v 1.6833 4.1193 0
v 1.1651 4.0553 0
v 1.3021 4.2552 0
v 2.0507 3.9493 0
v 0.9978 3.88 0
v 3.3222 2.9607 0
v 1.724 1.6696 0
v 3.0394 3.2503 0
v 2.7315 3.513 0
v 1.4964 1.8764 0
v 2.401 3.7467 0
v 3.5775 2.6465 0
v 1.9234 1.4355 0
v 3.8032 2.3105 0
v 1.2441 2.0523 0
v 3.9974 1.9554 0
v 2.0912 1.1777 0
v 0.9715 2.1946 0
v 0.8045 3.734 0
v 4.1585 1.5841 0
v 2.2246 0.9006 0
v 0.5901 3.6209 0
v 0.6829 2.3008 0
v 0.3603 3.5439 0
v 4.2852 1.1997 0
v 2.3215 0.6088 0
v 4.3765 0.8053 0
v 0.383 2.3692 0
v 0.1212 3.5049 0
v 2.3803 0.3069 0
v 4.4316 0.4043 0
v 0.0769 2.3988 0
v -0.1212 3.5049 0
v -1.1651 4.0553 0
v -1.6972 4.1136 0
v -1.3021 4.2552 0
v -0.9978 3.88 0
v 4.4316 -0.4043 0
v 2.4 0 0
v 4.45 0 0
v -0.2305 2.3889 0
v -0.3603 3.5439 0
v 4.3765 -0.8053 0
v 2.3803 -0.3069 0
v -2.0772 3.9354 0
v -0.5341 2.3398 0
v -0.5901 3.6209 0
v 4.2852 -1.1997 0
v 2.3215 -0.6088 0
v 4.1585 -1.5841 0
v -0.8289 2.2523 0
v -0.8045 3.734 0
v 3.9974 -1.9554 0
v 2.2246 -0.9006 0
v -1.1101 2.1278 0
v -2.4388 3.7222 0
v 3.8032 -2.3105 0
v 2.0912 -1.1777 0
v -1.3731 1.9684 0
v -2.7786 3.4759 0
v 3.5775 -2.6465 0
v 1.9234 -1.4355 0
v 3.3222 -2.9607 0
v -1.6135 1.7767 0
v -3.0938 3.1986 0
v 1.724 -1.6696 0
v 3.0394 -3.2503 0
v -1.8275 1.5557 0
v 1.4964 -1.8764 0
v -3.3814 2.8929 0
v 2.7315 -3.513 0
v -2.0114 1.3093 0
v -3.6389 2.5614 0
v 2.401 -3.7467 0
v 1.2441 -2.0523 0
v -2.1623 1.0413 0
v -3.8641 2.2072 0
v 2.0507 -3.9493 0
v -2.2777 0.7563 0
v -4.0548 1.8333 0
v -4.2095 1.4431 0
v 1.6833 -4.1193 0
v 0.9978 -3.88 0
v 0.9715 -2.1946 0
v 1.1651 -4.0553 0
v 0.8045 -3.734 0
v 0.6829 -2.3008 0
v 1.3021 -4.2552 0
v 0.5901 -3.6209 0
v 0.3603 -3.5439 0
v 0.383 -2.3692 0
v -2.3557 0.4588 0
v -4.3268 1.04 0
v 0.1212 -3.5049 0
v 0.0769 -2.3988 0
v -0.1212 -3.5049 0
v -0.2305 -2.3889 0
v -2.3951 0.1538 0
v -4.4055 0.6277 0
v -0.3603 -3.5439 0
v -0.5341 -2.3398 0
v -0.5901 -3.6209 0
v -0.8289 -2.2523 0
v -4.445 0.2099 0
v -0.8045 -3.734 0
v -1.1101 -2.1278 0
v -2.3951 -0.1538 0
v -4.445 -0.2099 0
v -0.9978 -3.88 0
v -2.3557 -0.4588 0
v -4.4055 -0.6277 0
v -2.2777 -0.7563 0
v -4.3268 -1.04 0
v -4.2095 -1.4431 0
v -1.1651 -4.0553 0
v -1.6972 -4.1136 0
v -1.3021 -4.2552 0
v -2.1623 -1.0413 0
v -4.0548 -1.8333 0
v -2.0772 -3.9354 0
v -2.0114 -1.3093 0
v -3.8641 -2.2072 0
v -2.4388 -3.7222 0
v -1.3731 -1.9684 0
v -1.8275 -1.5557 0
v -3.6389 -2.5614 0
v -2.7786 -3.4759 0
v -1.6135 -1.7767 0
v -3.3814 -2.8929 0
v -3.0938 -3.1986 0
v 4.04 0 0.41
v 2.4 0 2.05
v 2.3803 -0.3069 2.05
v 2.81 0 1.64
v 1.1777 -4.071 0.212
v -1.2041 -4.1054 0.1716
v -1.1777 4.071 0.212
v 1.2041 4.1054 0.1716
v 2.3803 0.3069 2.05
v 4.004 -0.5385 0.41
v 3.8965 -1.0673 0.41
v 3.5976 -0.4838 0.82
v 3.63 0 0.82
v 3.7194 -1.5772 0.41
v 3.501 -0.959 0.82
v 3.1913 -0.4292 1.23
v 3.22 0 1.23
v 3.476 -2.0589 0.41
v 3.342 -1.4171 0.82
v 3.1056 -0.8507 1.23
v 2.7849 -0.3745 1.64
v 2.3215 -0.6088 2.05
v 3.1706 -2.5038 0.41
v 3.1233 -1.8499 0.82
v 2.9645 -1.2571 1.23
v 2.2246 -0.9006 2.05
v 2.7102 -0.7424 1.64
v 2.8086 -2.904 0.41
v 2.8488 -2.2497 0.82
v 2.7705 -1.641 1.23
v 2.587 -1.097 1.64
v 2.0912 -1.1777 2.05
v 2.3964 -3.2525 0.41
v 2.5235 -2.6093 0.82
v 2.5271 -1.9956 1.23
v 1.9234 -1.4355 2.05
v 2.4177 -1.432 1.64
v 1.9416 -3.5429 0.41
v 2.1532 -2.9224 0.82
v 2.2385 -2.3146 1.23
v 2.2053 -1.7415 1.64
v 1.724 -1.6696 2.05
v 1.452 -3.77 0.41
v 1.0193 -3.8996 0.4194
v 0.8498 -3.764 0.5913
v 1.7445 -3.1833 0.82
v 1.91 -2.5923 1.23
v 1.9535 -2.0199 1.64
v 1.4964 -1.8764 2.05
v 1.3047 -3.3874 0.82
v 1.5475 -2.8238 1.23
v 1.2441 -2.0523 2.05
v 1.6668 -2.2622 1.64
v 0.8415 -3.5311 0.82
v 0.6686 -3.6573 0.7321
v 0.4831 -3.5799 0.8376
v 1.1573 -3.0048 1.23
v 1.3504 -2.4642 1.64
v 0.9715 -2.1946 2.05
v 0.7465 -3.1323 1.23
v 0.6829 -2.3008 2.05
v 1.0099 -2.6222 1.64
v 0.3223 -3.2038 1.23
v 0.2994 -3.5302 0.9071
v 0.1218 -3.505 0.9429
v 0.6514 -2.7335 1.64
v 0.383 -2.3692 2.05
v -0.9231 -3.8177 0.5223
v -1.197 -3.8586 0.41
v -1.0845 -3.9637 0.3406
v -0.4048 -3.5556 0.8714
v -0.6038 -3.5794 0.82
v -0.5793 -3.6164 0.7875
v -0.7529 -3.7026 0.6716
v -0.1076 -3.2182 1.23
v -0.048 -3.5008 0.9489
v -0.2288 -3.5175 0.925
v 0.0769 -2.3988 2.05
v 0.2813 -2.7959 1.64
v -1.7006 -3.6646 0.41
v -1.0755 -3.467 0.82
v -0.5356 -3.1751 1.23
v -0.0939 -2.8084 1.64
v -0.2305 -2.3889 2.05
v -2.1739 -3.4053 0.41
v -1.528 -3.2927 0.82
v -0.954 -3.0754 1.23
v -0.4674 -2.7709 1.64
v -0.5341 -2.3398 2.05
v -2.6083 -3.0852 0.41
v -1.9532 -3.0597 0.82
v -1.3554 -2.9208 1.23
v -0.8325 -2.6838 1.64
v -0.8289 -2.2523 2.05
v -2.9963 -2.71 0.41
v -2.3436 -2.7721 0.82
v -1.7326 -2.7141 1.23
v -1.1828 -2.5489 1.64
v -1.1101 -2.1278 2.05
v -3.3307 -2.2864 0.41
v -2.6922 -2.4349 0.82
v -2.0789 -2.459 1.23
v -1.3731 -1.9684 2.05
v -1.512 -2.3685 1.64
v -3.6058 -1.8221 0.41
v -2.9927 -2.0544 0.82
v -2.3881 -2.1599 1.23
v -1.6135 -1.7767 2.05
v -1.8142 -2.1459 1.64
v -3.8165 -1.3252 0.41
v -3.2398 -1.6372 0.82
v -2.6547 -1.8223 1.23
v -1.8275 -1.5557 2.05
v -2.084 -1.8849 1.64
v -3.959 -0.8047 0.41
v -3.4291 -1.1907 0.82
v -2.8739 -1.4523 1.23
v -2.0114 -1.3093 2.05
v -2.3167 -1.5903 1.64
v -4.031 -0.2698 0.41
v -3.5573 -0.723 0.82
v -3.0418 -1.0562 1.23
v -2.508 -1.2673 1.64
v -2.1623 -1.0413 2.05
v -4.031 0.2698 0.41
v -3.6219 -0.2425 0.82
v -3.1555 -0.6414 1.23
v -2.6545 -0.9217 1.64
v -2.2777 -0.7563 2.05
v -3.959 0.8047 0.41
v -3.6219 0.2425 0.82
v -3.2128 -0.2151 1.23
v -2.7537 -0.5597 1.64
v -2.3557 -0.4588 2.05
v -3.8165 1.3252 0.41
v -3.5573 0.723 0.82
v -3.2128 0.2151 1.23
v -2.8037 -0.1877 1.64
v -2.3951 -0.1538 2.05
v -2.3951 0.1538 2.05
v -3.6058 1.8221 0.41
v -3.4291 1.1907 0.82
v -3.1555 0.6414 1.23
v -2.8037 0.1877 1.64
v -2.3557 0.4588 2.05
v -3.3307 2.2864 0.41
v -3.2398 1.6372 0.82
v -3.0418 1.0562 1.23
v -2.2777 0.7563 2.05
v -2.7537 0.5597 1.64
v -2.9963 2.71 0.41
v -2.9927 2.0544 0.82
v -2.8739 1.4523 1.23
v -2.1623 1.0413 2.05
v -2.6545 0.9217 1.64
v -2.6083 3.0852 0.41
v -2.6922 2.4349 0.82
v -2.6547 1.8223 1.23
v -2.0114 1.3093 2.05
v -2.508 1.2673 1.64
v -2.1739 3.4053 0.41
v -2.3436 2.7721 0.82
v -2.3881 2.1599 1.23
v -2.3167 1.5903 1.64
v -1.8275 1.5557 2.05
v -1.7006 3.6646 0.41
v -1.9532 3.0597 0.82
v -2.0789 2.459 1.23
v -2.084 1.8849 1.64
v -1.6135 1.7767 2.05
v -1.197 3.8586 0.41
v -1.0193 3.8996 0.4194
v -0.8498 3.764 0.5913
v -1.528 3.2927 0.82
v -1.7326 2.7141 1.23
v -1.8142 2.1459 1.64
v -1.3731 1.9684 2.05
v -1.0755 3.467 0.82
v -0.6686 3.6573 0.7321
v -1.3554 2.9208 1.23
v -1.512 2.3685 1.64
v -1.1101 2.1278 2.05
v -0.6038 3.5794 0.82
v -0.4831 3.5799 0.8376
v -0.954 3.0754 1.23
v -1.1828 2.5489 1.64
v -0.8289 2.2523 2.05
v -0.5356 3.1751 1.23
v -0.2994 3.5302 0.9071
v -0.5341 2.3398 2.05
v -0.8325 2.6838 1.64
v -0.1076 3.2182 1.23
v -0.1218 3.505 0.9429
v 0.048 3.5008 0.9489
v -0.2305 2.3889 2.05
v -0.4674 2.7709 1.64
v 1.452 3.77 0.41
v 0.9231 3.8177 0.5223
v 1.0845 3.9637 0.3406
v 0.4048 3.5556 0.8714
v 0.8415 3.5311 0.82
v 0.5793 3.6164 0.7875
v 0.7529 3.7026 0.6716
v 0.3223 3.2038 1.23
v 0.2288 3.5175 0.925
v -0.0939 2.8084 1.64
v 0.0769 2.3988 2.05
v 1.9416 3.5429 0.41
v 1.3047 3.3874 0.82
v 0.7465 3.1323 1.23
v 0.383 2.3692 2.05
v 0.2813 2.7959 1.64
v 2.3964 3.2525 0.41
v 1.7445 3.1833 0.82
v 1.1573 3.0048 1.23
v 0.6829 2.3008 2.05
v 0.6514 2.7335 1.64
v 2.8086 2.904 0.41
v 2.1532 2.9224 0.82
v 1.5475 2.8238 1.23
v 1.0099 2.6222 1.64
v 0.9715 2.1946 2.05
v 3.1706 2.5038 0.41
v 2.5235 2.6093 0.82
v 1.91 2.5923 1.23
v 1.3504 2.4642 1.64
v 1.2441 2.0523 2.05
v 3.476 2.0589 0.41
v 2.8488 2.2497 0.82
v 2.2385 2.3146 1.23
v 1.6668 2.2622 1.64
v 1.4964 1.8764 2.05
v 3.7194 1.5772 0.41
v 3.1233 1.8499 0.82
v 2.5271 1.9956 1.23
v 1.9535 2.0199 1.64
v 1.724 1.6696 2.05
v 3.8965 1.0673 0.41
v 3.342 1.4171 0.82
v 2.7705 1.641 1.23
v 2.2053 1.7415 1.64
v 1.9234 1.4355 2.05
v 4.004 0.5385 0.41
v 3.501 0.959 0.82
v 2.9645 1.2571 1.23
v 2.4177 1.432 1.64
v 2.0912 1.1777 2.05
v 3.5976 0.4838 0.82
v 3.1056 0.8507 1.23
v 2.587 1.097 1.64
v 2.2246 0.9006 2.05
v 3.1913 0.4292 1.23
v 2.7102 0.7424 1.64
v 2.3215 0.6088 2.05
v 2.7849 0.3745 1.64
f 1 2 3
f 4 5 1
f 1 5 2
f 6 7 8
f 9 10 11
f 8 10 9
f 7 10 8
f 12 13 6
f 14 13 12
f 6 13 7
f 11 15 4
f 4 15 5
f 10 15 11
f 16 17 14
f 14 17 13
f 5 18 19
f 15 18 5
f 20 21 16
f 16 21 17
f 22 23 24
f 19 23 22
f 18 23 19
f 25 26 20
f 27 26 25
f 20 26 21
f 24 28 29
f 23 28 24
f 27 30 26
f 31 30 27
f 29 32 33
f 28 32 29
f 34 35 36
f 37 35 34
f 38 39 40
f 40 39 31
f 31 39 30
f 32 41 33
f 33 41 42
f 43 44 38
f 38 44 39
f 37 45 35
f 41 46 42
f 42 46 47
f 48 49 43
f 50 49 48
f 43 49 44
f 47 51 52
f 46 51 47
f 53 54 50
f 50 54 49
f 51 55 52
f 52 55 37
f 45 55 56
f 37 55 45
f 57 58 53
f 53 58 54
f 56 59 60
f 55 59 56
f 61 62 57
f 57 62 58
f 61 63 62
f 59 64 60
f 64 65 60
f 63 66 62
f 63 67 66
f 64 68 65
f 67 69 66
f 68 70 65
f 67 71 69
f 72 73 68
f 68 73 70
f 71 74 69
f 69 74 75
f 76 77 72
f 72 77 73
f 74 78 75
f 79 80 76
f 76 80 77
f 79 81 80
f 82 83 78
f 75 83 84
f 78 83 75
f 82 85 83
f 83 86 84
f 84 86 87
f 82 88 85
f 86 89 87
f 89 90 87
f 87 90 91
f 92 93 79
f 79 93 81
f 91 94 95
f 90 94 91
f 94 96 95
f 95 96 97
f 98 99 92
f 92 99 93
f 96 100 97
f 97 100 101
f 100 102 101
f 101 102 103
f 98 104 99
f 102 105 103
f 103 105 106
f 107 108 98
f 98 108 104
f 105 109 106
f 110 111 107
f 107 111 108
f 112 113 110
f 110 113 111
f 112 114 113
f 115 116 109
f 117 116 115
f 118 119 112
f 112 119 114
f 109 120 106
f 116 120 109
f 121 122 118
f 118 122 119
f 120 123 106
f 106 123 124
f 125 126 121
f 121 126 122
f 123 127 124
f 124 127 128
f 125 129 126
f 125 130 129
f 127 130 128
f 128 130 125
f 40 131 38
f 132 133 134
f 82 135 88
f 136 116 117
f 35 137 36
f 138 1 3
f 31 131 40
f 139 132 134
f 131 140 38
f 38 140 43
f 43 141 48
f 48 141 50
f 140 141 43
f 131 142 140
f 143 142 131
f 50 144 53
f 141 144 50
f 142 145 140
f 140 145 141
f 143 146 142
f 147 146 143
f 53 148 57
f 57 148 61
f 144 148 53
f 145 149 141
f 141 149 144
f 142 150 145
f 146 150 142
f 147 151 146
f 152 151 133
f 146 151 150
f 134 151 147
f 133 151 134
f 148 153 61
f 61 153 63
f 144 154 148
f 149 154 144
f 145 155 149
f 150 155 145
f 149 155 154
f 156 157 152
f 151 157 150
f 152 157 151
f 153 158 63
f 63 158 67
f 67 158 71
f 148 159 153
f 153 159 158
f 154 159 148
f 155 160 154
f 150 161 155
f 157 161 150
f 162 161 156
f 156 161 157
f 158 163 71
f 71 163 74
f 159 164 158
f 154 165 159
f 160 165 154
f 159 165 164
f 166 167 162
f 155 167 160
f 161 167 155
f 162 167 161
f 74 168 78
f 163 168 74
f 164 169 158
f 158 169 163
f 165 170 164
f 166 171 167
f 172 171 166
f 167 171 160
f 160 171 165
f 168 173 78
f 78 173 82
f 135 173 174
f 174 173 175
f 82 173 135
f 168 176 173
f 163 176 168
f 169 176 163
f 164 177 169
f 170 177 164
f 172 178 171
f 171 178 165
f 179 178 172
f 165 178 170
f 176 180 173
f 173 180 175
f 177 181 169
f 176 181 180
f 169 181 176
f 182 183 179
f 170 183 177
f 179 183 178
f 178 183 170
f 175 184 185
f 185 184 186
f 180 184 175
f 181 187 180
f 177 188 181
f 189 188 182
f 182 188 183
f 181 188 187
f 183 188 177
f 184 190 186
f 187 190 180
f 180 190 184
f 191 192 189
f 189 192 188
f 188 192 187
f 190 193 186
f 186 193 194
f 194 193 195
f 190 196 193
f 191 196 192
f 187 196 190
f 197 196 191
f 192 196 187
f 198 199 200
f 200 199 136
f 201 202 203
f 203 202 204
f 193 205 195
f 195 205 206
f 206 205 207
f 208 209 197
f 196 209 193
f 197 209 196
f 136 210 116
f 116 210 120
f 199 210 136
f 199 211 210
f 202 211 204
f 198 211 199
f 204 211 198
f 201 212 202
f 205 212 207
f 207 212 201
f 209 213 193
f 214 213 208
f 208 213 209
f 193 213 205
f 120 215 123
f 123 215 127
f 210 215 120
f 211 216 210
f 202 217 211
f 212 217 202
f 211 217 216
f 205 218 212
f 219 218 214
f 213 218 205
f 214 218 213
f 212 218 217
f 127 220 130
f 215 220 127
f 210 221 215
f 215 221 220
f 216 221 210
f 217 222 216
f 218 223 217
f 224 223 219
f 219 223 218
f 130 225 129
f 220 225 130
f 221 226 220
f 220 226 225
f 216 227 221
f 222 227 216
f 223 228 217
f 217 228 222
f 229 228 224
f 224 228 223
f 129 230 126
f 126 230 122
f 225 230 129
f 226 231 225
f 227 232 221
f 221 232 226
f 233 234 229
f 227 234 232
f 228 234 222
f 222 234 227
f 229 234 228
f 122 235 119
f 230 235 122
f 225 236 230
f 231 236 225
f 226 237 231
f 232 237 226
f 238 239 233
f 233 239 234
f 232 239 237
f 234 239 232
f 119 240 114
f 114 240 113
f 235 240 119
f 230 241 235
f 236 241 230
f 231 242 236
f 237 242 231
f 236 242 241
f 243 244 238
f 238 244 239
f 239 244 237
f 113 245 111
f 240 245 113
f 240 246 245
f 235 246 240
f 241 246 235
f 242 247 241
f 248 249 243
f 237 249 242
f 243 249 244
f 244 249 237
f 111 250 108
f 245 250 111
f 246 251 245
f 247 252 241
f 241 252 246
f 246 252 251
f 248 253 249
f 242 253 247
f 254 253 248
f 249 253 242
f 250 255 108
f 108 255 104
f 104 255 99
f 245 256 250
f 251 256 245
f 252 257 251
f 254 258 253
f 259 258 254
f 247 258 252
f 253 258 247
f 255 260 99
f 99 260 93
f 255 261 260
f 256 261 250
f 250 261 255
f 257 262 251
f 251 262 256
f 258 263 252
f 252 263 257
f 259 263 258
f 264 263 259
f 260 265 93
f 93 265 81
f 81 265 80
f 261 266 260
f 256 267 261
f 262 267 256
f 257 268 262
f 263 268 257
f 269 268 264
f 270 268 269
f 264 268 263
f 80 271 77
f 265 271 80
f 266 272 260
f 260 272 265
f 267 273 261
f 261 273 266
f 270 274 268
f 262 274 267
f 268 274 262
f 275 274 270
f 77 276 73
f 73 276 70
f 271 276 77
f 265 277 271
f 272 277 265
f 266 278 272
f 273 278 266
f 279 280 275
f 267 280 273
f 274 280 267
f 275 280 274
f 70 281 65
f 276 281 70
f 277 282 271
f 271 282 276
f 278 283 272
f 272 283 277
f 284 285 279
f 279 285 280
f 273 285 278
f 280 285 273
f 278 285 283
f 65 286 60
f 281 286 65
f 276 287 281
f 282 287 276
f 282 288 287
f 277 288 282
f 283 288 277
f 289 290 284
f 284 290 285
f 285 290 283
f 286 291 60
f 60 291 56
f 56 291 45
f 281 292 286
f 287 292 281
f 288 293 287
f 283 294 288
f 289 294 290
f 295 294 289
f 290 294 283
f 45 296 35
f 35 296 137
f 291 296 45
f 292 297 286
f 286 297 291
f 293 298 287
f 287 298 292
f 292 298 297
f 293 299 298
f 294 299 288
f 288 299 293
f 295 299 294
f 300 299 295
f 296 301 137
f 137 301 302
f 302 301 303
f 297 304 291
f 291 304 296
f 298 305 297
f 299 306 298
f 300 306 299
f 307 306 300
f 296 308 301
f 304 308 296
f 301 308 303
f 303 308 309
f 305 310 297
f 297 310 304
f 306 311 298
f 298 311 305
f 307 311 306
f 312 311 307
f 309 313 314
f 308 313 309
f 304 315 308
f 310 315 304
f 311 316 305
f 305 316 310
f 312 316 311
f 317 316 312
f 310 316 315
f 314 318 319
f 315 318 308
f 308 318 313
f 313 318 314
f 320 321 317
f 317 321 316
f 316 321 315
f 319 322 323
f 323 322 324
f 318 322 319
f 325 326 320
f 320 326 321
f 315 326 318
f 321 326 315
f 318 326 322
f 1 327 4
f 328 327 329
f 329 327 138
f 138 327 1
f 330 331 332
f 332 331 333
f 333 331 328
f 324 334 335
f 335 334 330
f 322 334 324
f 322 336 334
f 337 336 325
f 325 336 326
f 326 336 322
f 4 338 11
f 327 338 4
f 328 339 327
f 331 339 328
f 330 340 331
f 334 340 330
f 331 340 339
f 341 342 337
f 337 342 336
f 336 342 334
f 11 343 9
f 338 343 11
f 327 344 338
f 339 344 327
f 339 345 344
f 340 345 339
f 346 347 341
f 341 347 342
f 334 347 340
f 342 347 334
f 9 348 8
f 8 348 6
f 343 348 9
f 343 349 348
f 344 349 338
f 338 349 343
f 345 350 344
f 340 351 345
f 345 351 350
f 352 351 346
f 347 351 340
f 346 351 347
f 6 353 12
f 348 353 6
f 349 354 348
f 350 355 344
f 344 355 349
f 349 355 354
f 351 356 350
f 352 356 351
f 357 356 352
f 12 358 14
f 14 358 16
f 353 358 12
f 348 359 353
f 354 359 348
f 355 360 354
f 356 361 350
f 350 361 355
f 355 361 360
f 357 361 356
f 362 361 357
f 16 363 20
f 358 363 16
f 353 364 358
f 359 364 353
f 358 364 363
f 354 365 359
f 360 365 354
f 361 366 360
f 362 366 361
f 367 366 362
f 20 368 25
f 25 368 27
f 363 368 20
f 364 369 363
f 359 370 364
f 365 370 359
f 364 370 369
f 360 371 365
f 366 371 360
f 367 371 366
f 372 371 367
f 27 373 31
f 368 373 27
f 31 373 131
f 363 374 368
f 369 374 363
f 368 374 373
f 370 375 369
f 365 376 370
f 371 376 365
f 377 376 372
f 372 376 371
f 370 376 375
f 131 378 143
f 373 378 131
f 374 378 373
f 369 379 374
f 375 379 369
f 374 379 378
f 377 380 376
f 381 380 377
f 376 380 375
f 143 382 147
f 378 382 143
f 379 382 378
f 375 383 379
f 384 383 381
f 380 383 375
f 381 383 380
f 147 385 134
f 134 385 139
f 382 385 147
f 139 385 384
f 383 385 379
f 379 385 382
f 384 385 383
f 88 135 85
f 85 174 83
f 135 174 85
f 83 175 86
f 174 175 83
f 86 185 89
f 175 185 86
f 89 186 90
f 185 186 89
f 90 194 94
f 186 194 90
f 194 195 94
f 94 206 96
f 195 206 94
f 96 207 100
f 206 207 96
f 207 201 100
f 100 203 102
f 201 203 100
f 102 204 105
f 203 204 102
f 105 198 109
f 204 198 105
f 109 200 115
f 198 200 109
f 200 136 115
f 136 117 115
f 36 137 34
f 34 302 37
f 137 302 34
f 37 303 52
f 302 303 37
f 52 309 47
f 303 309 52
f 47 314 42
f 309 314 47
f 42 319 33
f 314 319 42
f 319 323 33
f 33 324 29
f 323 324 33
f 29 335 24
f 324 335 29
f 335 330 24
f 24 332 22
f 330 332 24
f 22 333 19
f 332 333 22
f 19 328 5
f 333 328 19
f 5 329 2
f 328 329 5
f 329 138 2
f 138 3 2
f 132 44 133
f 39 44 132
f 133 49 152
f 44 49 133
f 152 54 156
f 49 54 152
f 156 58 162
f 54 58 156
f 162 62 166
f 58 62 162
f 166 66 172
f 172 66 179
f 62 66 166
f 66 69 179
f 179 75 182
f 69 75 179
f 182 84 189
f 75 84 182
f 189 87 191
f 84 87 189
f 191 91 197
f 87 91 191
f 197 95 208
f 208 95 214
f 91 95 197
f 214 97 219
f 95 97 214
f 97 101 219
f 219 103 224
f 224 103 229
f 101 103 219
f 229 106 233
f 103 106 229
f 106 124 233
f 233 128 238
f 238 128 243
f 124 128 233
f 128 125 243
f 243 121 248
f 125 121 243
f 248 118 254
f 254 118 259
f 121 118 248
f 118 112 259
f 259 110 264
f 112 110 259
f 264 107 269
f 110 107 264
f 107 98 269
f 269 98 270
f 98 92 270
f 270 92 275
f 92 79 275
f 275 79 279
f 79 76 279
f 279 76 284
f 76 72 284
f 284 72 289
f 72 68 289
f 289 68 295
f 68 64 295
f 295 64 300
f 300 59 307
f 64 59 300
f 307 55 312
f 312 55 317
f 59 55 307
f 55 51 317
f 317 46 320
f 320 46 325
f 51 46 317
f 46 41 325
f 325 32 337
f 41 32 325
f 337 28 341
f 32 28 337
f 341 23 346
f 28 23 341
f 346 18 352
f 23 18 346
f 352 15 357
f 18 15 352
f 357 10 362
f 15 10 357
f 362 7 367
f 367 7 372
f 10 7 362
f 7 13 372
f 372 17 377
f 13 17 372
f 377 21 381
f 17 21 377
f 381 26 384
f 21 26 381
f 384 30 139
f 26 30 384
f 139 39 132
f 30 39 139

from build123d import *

# Parameters (mm, degrees)
SKETCH001_R        = 1.5
POCKET_DEPTH       = 25.505705
POCKET_DEPTH_BACK  = 27.555705
POLARPATTERN_COUNT = 2


with BuildPart() as part:
    # Sketch → Revolution (revolve)
    with BuildSketch(Plane.XZ):
        Polygon((2.4, 0), (4.45, 0), (2.4, 2.05), align=None)
    revolve(axis=Axis((0, 0, 0), (0, 0, 1)))

    # Sketch001 → Pocket (cut, two sides)
    with BuildSketch(Plane.XY) as pocket_sk:
        with Locations((0, 5)):
            Circle(SKETCH001_R)
    pocket = extrude(amount=-POCKET_DEPTH, mode=Mode.SUBTRACT) + extrude(pocket_sk.sketch, amount=POCKET_DEPTH_BACK, mode=Mode.SUBTRACT)

    # PolarPattern: Pocket ×2 about axis
    polarpattern_axis = Axis((0, 0, 0), (0, 0, 1))
    for i in range(1, POLARPATTERN_COUNT):
        add(pocket.rotate(polarpattern_axis, i * 360 / POLARPATTERN_COUNT), mode=Mode.SUBTRACT)


solid = part.part
